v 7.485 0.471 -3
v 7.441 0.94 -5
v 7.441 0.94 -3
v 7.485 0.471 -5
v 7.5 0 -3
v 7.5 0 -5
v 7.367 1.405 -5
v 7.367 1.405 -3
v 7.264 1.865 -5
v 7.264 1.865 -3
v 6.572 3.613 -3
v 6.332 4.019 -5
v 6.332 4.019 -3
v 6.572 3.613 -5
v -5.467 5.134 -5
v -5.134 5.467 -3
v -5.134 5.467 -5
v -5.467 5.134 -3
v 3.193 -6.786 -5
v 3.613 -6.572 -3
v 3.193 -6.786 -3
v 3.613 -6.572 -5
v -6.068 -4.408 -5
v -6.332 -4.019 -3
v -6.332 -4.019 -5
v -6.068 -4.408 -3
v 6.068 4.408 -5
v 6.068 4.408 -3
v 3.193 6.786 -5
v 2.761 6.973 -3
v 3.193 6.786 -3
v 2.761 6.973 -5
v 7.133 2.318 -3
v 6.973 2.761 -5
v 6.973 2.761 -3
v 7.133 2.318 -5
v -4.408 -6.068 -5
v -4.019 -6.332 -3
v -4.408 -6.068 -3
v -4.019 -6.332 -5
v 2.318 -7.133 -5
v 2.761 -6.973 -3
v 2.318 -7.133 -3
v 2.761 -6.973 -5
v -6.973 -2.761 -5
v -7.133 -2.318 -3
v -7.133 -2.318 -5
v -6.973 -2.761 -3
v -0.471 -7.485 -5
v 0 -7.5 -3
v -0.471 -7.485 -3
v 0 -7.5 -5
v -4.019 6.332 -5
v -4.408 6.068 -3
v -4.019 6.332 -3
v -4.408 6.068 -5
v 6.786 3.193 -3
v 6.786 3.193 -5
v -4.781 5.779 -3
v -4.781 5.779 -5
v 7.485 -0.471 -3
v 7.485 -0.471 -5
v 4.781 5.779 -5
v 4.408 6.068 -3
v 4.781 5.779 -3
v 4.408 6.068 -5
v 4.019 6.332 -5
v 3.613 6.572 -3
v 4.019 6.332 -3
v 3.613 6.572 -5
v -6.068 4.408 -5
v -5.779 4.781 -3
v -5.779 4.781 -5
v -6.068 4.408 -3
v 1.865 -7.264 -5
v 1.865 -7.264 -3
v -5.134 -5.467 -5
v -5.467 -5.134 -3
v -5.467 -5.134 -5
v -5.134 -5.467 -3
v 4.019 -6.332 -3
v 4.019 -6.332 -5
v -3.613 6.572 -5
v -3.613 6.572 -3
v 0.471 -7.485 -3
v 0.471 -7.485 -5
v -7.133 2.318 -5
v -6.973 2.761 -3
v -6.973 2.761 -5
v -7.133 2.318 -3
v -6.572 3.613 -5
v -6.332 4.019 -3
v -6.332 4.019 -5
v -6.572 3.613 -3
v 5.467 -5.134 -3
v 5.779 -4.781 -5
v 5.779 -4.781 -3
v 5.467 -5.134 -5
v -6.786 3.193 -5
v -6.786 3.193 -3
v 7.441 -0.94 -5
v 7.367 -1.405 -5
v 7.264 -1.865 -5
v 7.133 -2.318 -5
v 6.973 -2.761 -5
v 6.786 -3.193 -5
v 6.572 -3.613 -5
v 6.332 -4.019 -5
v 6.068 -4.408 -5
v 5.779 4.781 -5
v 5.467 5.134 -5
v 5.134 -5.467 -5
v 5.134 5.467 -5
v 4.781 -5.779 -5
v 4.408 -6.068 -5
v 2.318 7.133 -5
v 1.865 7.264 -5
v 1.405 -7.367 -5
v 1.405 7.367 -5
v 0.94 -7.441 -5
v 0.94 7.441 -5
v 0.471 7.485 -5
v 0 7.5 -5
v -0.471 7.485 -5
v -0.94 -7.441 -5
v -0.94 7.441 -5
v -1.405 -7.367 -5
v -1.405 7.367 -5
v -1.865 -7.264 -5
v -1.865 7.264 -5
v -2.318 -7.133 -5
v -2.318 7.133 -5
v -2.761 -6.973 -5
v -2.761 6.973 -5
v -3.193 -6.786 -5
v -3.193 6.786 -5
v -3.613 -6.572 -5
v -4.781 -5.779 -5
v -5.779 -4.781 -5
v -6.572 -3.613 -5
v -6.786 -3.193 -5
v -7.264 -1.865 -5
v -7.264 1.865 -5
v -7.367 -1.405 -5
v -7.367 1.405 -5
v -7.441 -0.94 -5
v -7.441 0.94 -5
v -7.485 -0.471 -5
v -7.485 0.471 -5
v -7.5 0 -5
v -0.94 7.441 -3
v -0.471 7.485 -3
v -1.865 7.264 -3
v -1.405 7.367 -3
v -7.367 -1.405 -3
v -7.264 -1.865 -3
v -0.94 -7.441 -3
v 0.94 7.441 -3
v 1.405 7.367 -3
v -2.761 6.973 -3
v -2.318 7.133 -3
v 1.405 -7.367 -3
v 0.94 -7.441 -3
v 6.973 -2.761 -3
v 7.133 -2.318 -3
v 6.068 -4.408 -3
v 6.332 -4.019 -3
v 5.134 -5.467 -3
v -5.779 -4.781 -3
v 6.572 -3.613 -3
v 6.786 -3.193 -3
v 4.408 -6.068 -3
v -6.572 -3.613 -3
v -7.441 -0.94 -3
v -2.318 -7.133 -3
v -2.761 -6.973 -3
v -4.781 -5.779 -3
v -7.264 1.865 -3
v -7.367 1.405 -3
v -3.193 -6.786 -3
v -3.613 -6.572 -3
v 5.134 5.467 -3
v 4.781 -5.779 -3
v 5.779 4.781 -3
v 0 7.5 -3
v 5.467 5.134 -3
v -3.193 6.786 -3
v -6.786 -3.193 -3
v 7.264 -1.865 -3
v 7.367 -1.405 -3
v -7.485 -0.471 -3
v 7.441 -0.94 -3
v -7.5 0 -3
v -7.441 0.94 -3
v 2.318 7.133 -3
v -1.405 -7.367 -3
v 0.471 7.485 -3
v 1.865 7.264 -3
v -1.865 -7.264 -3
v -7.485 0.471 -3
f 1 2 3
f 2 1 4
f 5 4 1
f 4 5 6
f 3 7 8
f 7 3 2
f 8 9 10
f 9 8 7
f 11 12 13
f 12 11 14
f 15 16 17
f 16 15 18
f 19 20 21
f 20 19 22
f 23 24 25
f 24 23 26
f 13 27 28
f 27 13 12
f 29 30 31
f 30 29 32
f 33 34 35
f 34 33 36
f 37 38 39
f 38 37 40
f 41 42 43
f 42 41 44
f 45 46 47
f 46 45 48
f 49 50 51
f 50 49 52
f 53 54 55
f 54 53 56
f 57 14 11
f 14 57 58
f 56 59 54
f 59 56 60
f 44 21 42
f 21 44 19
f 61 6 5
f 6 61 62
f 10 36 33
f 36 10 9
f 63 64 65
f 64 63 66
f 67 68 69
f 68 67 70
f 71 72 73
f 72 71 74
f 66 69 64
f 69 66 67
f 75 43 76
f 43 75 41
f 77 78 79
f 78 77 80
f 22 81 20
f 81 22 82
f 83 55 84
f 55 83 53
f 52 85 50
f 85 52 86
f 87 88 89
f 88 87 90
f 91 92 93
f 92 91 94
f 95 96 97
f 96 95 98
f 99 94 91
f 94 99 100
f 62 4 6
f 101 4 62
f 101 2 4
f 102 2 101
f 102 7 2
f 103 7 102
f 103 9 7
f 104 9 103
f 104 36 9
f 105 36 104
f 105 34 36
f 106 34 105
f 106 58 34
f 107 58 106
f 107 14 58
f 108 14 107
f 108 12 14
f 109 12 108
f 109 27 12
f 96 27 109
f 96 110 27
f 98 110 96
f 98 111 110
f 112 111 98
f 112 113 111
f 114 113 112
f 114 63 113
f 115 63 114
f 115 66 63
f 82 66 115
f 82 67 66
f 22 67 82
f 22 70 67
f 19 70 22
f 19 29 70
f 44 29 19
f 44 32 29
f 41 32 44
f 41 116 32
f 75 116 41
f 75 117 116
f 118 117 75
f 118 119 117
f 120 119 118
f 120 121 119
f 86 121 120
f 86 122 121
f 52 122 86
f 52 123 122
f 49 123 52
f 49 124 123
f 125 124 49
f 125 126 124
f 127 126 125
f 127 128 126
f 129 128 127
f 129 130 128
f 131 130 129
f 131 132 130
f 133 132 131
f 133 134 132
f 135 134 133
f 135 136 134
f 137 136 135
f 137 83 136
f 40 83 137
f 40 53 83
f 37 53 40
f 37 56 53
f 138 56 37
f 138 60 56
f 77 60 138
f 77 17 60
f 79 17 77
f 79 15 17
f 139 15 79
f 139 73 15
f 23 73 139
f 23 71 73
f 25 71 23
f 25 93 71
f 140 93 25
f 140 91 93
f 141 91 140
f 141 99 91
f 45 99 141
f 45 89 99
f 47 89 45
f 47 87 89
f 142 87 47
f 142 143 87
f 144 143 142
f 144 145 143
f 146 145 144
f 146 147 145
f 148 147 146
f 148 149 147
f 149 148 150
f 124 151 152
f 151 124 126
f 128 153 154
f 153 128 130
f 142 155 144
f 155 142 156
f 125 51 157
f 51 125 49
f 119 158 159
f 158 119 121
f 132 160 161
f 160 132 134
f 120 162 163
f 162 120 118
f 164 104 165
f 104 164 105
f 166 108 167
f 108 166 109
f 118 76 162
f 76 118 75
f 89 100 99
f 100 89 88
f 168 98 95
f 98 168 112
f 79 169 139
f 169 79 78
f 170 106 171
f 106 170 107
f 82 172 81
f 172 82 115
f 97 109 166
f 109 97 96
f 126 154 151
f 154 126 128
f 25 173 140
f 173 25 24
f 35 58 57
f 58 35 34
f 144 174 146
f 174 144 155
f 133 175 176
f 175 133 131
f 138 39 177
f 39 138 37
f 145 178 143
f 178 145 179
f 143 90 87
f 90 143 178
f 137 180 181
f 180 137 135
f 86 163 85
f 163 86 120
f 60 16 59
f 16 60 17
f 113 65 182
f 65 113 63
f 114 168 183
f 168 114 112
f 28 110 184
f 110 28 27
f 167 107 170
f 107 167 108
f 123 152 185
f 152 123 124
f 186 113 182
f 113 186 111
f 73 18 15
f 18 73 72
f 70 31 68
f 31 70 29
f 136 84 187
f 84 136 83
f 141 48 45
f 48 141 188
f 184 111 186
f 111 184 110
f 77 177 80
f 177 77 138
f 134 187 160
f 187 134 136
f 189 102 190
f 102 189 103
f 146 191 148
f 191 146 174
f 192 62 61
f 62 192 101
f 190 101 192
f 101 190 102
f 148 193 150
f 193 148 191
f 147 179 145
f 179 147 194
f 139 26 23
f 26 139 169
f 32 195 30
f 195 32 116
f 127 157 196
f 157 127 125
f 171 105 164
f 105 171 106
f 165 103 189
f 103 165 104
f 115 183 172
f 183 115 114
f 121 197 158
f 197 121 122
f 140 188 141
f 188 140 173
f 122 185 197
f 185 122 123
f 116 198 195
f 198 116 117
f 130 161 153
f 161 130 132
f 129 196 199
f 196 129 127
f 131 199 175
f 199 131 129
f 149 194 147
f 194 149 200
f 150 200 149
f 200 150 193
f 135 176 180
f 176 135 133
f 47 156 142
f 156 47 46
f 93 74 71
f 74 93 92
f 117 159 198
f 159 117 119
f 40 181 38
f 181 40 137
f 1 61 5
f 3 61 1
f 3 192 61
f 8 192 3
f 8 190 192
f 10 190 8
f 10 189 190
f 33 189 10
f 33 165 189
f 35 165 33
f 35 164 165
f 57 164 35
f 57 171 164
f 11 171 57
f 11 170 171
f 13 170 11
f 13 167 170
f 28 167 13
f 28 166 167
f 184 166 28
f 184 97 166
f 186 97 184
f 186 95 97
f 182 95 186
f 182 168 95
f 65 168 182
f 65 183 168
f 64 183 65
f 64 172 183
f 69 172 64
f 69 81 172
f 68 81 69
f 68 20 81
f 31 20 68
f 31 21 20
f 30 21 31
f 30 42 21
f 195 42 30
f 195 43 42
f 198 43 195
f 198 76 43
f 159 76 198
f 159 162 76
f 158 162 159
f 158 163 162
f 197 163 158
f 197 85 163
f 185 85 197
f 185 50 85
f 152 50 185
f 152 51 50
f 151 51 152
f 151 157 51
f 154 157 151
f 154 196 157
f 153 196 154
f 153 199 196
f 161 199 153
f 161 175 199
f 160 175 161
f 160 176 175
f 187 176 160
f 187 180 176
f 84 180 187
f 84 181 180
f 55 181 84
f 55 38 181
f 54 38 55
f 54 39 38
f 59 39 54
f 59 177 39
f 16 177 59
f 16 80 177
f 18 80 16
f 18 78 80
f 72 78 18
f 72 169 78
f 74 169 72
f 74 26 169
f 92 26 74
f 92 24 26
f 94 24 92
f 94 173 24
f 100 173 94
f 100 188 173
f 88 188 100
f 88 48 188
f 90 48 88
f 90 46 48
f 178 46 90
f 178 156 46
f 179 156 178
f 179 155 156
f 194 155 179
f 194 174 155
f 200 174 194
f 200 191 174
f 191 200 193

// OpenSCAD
// TABLE WARS - Button Glyph Cap V2
// AESTHETIC VERSION - Proper Forerunner glyph

/* [Dimensions] */
outer_diameter = 15;
thickness = 2;
pin_diameter = 3;
pin_height = 3;

/* [Forerunner Glyph] */
glyph_depth = 1.5;        // MUCH DEEPER - very visible
glyph_size = 10;

/* [Resolution] */
$fn = 100;

module button_cap_v2() {
    difference() {
        union() {
            // Main cap with subtle dome
            translate([0, 0, thickness/2])
                scale([1, 1, 0.4])
                    sphere(d = outer_diameter);

            // Flatten bottom
            translate([0, 0, -5])
                cylinder(h = 5, d = outer_diameter);

            // Underside pin
            translate([0, 0, -pin_height])
                cylinder(h = pin_height, d = pin_diameter);
        }

        // Remove top excess
        translate([0, 0, thickness])
            cube([50, 50, 10], center = true);

        // Remove bottom excess
        translate([0, 0, -20])
            cube([50, 50, 20], center = true);

        // Forerunner glyph (complex geometric pattern)
        translate([0, 0, thickness - glyph_depth])
            forerunner_glyph(glyph_size);
    }
}

module forerunner_glyph(size) {
    // Central hexagon
    linear_extrude(height = glyph_depth + 1)
        circle(d = size * 0.4, $fn = 6);

    // Radiating triangular elements (classic Forerunner)
    for (i = [0:2]) {
        rotate([0, 0, i * 120])
            translate([0, size * 0.35, 0])
                linear_extrude(height = glyph_depth + 1)
                    polygon([
                        [0, size * 0.15],
                        [-size * 0.1, -size * 0.05],
                        [size * 0.1, -size * 0.05]
                    ]);
    }

    // Outer ring with segments
    linear_extrude(height = glyph_depth + 1)
        difference() {
            circle(d = size, $fn = 60);
            circle(d = size * 0.85, $fn = 60);

            // Segment gaps
            for (i = [0:5]) {
                rotate([0, 0, i * 60 + 30])
                    translate([size * 0.5, 0, 0])
                        square([size * 0.2, size * 0.3], center = true);
            }
        }
}

button_cap_v2();
